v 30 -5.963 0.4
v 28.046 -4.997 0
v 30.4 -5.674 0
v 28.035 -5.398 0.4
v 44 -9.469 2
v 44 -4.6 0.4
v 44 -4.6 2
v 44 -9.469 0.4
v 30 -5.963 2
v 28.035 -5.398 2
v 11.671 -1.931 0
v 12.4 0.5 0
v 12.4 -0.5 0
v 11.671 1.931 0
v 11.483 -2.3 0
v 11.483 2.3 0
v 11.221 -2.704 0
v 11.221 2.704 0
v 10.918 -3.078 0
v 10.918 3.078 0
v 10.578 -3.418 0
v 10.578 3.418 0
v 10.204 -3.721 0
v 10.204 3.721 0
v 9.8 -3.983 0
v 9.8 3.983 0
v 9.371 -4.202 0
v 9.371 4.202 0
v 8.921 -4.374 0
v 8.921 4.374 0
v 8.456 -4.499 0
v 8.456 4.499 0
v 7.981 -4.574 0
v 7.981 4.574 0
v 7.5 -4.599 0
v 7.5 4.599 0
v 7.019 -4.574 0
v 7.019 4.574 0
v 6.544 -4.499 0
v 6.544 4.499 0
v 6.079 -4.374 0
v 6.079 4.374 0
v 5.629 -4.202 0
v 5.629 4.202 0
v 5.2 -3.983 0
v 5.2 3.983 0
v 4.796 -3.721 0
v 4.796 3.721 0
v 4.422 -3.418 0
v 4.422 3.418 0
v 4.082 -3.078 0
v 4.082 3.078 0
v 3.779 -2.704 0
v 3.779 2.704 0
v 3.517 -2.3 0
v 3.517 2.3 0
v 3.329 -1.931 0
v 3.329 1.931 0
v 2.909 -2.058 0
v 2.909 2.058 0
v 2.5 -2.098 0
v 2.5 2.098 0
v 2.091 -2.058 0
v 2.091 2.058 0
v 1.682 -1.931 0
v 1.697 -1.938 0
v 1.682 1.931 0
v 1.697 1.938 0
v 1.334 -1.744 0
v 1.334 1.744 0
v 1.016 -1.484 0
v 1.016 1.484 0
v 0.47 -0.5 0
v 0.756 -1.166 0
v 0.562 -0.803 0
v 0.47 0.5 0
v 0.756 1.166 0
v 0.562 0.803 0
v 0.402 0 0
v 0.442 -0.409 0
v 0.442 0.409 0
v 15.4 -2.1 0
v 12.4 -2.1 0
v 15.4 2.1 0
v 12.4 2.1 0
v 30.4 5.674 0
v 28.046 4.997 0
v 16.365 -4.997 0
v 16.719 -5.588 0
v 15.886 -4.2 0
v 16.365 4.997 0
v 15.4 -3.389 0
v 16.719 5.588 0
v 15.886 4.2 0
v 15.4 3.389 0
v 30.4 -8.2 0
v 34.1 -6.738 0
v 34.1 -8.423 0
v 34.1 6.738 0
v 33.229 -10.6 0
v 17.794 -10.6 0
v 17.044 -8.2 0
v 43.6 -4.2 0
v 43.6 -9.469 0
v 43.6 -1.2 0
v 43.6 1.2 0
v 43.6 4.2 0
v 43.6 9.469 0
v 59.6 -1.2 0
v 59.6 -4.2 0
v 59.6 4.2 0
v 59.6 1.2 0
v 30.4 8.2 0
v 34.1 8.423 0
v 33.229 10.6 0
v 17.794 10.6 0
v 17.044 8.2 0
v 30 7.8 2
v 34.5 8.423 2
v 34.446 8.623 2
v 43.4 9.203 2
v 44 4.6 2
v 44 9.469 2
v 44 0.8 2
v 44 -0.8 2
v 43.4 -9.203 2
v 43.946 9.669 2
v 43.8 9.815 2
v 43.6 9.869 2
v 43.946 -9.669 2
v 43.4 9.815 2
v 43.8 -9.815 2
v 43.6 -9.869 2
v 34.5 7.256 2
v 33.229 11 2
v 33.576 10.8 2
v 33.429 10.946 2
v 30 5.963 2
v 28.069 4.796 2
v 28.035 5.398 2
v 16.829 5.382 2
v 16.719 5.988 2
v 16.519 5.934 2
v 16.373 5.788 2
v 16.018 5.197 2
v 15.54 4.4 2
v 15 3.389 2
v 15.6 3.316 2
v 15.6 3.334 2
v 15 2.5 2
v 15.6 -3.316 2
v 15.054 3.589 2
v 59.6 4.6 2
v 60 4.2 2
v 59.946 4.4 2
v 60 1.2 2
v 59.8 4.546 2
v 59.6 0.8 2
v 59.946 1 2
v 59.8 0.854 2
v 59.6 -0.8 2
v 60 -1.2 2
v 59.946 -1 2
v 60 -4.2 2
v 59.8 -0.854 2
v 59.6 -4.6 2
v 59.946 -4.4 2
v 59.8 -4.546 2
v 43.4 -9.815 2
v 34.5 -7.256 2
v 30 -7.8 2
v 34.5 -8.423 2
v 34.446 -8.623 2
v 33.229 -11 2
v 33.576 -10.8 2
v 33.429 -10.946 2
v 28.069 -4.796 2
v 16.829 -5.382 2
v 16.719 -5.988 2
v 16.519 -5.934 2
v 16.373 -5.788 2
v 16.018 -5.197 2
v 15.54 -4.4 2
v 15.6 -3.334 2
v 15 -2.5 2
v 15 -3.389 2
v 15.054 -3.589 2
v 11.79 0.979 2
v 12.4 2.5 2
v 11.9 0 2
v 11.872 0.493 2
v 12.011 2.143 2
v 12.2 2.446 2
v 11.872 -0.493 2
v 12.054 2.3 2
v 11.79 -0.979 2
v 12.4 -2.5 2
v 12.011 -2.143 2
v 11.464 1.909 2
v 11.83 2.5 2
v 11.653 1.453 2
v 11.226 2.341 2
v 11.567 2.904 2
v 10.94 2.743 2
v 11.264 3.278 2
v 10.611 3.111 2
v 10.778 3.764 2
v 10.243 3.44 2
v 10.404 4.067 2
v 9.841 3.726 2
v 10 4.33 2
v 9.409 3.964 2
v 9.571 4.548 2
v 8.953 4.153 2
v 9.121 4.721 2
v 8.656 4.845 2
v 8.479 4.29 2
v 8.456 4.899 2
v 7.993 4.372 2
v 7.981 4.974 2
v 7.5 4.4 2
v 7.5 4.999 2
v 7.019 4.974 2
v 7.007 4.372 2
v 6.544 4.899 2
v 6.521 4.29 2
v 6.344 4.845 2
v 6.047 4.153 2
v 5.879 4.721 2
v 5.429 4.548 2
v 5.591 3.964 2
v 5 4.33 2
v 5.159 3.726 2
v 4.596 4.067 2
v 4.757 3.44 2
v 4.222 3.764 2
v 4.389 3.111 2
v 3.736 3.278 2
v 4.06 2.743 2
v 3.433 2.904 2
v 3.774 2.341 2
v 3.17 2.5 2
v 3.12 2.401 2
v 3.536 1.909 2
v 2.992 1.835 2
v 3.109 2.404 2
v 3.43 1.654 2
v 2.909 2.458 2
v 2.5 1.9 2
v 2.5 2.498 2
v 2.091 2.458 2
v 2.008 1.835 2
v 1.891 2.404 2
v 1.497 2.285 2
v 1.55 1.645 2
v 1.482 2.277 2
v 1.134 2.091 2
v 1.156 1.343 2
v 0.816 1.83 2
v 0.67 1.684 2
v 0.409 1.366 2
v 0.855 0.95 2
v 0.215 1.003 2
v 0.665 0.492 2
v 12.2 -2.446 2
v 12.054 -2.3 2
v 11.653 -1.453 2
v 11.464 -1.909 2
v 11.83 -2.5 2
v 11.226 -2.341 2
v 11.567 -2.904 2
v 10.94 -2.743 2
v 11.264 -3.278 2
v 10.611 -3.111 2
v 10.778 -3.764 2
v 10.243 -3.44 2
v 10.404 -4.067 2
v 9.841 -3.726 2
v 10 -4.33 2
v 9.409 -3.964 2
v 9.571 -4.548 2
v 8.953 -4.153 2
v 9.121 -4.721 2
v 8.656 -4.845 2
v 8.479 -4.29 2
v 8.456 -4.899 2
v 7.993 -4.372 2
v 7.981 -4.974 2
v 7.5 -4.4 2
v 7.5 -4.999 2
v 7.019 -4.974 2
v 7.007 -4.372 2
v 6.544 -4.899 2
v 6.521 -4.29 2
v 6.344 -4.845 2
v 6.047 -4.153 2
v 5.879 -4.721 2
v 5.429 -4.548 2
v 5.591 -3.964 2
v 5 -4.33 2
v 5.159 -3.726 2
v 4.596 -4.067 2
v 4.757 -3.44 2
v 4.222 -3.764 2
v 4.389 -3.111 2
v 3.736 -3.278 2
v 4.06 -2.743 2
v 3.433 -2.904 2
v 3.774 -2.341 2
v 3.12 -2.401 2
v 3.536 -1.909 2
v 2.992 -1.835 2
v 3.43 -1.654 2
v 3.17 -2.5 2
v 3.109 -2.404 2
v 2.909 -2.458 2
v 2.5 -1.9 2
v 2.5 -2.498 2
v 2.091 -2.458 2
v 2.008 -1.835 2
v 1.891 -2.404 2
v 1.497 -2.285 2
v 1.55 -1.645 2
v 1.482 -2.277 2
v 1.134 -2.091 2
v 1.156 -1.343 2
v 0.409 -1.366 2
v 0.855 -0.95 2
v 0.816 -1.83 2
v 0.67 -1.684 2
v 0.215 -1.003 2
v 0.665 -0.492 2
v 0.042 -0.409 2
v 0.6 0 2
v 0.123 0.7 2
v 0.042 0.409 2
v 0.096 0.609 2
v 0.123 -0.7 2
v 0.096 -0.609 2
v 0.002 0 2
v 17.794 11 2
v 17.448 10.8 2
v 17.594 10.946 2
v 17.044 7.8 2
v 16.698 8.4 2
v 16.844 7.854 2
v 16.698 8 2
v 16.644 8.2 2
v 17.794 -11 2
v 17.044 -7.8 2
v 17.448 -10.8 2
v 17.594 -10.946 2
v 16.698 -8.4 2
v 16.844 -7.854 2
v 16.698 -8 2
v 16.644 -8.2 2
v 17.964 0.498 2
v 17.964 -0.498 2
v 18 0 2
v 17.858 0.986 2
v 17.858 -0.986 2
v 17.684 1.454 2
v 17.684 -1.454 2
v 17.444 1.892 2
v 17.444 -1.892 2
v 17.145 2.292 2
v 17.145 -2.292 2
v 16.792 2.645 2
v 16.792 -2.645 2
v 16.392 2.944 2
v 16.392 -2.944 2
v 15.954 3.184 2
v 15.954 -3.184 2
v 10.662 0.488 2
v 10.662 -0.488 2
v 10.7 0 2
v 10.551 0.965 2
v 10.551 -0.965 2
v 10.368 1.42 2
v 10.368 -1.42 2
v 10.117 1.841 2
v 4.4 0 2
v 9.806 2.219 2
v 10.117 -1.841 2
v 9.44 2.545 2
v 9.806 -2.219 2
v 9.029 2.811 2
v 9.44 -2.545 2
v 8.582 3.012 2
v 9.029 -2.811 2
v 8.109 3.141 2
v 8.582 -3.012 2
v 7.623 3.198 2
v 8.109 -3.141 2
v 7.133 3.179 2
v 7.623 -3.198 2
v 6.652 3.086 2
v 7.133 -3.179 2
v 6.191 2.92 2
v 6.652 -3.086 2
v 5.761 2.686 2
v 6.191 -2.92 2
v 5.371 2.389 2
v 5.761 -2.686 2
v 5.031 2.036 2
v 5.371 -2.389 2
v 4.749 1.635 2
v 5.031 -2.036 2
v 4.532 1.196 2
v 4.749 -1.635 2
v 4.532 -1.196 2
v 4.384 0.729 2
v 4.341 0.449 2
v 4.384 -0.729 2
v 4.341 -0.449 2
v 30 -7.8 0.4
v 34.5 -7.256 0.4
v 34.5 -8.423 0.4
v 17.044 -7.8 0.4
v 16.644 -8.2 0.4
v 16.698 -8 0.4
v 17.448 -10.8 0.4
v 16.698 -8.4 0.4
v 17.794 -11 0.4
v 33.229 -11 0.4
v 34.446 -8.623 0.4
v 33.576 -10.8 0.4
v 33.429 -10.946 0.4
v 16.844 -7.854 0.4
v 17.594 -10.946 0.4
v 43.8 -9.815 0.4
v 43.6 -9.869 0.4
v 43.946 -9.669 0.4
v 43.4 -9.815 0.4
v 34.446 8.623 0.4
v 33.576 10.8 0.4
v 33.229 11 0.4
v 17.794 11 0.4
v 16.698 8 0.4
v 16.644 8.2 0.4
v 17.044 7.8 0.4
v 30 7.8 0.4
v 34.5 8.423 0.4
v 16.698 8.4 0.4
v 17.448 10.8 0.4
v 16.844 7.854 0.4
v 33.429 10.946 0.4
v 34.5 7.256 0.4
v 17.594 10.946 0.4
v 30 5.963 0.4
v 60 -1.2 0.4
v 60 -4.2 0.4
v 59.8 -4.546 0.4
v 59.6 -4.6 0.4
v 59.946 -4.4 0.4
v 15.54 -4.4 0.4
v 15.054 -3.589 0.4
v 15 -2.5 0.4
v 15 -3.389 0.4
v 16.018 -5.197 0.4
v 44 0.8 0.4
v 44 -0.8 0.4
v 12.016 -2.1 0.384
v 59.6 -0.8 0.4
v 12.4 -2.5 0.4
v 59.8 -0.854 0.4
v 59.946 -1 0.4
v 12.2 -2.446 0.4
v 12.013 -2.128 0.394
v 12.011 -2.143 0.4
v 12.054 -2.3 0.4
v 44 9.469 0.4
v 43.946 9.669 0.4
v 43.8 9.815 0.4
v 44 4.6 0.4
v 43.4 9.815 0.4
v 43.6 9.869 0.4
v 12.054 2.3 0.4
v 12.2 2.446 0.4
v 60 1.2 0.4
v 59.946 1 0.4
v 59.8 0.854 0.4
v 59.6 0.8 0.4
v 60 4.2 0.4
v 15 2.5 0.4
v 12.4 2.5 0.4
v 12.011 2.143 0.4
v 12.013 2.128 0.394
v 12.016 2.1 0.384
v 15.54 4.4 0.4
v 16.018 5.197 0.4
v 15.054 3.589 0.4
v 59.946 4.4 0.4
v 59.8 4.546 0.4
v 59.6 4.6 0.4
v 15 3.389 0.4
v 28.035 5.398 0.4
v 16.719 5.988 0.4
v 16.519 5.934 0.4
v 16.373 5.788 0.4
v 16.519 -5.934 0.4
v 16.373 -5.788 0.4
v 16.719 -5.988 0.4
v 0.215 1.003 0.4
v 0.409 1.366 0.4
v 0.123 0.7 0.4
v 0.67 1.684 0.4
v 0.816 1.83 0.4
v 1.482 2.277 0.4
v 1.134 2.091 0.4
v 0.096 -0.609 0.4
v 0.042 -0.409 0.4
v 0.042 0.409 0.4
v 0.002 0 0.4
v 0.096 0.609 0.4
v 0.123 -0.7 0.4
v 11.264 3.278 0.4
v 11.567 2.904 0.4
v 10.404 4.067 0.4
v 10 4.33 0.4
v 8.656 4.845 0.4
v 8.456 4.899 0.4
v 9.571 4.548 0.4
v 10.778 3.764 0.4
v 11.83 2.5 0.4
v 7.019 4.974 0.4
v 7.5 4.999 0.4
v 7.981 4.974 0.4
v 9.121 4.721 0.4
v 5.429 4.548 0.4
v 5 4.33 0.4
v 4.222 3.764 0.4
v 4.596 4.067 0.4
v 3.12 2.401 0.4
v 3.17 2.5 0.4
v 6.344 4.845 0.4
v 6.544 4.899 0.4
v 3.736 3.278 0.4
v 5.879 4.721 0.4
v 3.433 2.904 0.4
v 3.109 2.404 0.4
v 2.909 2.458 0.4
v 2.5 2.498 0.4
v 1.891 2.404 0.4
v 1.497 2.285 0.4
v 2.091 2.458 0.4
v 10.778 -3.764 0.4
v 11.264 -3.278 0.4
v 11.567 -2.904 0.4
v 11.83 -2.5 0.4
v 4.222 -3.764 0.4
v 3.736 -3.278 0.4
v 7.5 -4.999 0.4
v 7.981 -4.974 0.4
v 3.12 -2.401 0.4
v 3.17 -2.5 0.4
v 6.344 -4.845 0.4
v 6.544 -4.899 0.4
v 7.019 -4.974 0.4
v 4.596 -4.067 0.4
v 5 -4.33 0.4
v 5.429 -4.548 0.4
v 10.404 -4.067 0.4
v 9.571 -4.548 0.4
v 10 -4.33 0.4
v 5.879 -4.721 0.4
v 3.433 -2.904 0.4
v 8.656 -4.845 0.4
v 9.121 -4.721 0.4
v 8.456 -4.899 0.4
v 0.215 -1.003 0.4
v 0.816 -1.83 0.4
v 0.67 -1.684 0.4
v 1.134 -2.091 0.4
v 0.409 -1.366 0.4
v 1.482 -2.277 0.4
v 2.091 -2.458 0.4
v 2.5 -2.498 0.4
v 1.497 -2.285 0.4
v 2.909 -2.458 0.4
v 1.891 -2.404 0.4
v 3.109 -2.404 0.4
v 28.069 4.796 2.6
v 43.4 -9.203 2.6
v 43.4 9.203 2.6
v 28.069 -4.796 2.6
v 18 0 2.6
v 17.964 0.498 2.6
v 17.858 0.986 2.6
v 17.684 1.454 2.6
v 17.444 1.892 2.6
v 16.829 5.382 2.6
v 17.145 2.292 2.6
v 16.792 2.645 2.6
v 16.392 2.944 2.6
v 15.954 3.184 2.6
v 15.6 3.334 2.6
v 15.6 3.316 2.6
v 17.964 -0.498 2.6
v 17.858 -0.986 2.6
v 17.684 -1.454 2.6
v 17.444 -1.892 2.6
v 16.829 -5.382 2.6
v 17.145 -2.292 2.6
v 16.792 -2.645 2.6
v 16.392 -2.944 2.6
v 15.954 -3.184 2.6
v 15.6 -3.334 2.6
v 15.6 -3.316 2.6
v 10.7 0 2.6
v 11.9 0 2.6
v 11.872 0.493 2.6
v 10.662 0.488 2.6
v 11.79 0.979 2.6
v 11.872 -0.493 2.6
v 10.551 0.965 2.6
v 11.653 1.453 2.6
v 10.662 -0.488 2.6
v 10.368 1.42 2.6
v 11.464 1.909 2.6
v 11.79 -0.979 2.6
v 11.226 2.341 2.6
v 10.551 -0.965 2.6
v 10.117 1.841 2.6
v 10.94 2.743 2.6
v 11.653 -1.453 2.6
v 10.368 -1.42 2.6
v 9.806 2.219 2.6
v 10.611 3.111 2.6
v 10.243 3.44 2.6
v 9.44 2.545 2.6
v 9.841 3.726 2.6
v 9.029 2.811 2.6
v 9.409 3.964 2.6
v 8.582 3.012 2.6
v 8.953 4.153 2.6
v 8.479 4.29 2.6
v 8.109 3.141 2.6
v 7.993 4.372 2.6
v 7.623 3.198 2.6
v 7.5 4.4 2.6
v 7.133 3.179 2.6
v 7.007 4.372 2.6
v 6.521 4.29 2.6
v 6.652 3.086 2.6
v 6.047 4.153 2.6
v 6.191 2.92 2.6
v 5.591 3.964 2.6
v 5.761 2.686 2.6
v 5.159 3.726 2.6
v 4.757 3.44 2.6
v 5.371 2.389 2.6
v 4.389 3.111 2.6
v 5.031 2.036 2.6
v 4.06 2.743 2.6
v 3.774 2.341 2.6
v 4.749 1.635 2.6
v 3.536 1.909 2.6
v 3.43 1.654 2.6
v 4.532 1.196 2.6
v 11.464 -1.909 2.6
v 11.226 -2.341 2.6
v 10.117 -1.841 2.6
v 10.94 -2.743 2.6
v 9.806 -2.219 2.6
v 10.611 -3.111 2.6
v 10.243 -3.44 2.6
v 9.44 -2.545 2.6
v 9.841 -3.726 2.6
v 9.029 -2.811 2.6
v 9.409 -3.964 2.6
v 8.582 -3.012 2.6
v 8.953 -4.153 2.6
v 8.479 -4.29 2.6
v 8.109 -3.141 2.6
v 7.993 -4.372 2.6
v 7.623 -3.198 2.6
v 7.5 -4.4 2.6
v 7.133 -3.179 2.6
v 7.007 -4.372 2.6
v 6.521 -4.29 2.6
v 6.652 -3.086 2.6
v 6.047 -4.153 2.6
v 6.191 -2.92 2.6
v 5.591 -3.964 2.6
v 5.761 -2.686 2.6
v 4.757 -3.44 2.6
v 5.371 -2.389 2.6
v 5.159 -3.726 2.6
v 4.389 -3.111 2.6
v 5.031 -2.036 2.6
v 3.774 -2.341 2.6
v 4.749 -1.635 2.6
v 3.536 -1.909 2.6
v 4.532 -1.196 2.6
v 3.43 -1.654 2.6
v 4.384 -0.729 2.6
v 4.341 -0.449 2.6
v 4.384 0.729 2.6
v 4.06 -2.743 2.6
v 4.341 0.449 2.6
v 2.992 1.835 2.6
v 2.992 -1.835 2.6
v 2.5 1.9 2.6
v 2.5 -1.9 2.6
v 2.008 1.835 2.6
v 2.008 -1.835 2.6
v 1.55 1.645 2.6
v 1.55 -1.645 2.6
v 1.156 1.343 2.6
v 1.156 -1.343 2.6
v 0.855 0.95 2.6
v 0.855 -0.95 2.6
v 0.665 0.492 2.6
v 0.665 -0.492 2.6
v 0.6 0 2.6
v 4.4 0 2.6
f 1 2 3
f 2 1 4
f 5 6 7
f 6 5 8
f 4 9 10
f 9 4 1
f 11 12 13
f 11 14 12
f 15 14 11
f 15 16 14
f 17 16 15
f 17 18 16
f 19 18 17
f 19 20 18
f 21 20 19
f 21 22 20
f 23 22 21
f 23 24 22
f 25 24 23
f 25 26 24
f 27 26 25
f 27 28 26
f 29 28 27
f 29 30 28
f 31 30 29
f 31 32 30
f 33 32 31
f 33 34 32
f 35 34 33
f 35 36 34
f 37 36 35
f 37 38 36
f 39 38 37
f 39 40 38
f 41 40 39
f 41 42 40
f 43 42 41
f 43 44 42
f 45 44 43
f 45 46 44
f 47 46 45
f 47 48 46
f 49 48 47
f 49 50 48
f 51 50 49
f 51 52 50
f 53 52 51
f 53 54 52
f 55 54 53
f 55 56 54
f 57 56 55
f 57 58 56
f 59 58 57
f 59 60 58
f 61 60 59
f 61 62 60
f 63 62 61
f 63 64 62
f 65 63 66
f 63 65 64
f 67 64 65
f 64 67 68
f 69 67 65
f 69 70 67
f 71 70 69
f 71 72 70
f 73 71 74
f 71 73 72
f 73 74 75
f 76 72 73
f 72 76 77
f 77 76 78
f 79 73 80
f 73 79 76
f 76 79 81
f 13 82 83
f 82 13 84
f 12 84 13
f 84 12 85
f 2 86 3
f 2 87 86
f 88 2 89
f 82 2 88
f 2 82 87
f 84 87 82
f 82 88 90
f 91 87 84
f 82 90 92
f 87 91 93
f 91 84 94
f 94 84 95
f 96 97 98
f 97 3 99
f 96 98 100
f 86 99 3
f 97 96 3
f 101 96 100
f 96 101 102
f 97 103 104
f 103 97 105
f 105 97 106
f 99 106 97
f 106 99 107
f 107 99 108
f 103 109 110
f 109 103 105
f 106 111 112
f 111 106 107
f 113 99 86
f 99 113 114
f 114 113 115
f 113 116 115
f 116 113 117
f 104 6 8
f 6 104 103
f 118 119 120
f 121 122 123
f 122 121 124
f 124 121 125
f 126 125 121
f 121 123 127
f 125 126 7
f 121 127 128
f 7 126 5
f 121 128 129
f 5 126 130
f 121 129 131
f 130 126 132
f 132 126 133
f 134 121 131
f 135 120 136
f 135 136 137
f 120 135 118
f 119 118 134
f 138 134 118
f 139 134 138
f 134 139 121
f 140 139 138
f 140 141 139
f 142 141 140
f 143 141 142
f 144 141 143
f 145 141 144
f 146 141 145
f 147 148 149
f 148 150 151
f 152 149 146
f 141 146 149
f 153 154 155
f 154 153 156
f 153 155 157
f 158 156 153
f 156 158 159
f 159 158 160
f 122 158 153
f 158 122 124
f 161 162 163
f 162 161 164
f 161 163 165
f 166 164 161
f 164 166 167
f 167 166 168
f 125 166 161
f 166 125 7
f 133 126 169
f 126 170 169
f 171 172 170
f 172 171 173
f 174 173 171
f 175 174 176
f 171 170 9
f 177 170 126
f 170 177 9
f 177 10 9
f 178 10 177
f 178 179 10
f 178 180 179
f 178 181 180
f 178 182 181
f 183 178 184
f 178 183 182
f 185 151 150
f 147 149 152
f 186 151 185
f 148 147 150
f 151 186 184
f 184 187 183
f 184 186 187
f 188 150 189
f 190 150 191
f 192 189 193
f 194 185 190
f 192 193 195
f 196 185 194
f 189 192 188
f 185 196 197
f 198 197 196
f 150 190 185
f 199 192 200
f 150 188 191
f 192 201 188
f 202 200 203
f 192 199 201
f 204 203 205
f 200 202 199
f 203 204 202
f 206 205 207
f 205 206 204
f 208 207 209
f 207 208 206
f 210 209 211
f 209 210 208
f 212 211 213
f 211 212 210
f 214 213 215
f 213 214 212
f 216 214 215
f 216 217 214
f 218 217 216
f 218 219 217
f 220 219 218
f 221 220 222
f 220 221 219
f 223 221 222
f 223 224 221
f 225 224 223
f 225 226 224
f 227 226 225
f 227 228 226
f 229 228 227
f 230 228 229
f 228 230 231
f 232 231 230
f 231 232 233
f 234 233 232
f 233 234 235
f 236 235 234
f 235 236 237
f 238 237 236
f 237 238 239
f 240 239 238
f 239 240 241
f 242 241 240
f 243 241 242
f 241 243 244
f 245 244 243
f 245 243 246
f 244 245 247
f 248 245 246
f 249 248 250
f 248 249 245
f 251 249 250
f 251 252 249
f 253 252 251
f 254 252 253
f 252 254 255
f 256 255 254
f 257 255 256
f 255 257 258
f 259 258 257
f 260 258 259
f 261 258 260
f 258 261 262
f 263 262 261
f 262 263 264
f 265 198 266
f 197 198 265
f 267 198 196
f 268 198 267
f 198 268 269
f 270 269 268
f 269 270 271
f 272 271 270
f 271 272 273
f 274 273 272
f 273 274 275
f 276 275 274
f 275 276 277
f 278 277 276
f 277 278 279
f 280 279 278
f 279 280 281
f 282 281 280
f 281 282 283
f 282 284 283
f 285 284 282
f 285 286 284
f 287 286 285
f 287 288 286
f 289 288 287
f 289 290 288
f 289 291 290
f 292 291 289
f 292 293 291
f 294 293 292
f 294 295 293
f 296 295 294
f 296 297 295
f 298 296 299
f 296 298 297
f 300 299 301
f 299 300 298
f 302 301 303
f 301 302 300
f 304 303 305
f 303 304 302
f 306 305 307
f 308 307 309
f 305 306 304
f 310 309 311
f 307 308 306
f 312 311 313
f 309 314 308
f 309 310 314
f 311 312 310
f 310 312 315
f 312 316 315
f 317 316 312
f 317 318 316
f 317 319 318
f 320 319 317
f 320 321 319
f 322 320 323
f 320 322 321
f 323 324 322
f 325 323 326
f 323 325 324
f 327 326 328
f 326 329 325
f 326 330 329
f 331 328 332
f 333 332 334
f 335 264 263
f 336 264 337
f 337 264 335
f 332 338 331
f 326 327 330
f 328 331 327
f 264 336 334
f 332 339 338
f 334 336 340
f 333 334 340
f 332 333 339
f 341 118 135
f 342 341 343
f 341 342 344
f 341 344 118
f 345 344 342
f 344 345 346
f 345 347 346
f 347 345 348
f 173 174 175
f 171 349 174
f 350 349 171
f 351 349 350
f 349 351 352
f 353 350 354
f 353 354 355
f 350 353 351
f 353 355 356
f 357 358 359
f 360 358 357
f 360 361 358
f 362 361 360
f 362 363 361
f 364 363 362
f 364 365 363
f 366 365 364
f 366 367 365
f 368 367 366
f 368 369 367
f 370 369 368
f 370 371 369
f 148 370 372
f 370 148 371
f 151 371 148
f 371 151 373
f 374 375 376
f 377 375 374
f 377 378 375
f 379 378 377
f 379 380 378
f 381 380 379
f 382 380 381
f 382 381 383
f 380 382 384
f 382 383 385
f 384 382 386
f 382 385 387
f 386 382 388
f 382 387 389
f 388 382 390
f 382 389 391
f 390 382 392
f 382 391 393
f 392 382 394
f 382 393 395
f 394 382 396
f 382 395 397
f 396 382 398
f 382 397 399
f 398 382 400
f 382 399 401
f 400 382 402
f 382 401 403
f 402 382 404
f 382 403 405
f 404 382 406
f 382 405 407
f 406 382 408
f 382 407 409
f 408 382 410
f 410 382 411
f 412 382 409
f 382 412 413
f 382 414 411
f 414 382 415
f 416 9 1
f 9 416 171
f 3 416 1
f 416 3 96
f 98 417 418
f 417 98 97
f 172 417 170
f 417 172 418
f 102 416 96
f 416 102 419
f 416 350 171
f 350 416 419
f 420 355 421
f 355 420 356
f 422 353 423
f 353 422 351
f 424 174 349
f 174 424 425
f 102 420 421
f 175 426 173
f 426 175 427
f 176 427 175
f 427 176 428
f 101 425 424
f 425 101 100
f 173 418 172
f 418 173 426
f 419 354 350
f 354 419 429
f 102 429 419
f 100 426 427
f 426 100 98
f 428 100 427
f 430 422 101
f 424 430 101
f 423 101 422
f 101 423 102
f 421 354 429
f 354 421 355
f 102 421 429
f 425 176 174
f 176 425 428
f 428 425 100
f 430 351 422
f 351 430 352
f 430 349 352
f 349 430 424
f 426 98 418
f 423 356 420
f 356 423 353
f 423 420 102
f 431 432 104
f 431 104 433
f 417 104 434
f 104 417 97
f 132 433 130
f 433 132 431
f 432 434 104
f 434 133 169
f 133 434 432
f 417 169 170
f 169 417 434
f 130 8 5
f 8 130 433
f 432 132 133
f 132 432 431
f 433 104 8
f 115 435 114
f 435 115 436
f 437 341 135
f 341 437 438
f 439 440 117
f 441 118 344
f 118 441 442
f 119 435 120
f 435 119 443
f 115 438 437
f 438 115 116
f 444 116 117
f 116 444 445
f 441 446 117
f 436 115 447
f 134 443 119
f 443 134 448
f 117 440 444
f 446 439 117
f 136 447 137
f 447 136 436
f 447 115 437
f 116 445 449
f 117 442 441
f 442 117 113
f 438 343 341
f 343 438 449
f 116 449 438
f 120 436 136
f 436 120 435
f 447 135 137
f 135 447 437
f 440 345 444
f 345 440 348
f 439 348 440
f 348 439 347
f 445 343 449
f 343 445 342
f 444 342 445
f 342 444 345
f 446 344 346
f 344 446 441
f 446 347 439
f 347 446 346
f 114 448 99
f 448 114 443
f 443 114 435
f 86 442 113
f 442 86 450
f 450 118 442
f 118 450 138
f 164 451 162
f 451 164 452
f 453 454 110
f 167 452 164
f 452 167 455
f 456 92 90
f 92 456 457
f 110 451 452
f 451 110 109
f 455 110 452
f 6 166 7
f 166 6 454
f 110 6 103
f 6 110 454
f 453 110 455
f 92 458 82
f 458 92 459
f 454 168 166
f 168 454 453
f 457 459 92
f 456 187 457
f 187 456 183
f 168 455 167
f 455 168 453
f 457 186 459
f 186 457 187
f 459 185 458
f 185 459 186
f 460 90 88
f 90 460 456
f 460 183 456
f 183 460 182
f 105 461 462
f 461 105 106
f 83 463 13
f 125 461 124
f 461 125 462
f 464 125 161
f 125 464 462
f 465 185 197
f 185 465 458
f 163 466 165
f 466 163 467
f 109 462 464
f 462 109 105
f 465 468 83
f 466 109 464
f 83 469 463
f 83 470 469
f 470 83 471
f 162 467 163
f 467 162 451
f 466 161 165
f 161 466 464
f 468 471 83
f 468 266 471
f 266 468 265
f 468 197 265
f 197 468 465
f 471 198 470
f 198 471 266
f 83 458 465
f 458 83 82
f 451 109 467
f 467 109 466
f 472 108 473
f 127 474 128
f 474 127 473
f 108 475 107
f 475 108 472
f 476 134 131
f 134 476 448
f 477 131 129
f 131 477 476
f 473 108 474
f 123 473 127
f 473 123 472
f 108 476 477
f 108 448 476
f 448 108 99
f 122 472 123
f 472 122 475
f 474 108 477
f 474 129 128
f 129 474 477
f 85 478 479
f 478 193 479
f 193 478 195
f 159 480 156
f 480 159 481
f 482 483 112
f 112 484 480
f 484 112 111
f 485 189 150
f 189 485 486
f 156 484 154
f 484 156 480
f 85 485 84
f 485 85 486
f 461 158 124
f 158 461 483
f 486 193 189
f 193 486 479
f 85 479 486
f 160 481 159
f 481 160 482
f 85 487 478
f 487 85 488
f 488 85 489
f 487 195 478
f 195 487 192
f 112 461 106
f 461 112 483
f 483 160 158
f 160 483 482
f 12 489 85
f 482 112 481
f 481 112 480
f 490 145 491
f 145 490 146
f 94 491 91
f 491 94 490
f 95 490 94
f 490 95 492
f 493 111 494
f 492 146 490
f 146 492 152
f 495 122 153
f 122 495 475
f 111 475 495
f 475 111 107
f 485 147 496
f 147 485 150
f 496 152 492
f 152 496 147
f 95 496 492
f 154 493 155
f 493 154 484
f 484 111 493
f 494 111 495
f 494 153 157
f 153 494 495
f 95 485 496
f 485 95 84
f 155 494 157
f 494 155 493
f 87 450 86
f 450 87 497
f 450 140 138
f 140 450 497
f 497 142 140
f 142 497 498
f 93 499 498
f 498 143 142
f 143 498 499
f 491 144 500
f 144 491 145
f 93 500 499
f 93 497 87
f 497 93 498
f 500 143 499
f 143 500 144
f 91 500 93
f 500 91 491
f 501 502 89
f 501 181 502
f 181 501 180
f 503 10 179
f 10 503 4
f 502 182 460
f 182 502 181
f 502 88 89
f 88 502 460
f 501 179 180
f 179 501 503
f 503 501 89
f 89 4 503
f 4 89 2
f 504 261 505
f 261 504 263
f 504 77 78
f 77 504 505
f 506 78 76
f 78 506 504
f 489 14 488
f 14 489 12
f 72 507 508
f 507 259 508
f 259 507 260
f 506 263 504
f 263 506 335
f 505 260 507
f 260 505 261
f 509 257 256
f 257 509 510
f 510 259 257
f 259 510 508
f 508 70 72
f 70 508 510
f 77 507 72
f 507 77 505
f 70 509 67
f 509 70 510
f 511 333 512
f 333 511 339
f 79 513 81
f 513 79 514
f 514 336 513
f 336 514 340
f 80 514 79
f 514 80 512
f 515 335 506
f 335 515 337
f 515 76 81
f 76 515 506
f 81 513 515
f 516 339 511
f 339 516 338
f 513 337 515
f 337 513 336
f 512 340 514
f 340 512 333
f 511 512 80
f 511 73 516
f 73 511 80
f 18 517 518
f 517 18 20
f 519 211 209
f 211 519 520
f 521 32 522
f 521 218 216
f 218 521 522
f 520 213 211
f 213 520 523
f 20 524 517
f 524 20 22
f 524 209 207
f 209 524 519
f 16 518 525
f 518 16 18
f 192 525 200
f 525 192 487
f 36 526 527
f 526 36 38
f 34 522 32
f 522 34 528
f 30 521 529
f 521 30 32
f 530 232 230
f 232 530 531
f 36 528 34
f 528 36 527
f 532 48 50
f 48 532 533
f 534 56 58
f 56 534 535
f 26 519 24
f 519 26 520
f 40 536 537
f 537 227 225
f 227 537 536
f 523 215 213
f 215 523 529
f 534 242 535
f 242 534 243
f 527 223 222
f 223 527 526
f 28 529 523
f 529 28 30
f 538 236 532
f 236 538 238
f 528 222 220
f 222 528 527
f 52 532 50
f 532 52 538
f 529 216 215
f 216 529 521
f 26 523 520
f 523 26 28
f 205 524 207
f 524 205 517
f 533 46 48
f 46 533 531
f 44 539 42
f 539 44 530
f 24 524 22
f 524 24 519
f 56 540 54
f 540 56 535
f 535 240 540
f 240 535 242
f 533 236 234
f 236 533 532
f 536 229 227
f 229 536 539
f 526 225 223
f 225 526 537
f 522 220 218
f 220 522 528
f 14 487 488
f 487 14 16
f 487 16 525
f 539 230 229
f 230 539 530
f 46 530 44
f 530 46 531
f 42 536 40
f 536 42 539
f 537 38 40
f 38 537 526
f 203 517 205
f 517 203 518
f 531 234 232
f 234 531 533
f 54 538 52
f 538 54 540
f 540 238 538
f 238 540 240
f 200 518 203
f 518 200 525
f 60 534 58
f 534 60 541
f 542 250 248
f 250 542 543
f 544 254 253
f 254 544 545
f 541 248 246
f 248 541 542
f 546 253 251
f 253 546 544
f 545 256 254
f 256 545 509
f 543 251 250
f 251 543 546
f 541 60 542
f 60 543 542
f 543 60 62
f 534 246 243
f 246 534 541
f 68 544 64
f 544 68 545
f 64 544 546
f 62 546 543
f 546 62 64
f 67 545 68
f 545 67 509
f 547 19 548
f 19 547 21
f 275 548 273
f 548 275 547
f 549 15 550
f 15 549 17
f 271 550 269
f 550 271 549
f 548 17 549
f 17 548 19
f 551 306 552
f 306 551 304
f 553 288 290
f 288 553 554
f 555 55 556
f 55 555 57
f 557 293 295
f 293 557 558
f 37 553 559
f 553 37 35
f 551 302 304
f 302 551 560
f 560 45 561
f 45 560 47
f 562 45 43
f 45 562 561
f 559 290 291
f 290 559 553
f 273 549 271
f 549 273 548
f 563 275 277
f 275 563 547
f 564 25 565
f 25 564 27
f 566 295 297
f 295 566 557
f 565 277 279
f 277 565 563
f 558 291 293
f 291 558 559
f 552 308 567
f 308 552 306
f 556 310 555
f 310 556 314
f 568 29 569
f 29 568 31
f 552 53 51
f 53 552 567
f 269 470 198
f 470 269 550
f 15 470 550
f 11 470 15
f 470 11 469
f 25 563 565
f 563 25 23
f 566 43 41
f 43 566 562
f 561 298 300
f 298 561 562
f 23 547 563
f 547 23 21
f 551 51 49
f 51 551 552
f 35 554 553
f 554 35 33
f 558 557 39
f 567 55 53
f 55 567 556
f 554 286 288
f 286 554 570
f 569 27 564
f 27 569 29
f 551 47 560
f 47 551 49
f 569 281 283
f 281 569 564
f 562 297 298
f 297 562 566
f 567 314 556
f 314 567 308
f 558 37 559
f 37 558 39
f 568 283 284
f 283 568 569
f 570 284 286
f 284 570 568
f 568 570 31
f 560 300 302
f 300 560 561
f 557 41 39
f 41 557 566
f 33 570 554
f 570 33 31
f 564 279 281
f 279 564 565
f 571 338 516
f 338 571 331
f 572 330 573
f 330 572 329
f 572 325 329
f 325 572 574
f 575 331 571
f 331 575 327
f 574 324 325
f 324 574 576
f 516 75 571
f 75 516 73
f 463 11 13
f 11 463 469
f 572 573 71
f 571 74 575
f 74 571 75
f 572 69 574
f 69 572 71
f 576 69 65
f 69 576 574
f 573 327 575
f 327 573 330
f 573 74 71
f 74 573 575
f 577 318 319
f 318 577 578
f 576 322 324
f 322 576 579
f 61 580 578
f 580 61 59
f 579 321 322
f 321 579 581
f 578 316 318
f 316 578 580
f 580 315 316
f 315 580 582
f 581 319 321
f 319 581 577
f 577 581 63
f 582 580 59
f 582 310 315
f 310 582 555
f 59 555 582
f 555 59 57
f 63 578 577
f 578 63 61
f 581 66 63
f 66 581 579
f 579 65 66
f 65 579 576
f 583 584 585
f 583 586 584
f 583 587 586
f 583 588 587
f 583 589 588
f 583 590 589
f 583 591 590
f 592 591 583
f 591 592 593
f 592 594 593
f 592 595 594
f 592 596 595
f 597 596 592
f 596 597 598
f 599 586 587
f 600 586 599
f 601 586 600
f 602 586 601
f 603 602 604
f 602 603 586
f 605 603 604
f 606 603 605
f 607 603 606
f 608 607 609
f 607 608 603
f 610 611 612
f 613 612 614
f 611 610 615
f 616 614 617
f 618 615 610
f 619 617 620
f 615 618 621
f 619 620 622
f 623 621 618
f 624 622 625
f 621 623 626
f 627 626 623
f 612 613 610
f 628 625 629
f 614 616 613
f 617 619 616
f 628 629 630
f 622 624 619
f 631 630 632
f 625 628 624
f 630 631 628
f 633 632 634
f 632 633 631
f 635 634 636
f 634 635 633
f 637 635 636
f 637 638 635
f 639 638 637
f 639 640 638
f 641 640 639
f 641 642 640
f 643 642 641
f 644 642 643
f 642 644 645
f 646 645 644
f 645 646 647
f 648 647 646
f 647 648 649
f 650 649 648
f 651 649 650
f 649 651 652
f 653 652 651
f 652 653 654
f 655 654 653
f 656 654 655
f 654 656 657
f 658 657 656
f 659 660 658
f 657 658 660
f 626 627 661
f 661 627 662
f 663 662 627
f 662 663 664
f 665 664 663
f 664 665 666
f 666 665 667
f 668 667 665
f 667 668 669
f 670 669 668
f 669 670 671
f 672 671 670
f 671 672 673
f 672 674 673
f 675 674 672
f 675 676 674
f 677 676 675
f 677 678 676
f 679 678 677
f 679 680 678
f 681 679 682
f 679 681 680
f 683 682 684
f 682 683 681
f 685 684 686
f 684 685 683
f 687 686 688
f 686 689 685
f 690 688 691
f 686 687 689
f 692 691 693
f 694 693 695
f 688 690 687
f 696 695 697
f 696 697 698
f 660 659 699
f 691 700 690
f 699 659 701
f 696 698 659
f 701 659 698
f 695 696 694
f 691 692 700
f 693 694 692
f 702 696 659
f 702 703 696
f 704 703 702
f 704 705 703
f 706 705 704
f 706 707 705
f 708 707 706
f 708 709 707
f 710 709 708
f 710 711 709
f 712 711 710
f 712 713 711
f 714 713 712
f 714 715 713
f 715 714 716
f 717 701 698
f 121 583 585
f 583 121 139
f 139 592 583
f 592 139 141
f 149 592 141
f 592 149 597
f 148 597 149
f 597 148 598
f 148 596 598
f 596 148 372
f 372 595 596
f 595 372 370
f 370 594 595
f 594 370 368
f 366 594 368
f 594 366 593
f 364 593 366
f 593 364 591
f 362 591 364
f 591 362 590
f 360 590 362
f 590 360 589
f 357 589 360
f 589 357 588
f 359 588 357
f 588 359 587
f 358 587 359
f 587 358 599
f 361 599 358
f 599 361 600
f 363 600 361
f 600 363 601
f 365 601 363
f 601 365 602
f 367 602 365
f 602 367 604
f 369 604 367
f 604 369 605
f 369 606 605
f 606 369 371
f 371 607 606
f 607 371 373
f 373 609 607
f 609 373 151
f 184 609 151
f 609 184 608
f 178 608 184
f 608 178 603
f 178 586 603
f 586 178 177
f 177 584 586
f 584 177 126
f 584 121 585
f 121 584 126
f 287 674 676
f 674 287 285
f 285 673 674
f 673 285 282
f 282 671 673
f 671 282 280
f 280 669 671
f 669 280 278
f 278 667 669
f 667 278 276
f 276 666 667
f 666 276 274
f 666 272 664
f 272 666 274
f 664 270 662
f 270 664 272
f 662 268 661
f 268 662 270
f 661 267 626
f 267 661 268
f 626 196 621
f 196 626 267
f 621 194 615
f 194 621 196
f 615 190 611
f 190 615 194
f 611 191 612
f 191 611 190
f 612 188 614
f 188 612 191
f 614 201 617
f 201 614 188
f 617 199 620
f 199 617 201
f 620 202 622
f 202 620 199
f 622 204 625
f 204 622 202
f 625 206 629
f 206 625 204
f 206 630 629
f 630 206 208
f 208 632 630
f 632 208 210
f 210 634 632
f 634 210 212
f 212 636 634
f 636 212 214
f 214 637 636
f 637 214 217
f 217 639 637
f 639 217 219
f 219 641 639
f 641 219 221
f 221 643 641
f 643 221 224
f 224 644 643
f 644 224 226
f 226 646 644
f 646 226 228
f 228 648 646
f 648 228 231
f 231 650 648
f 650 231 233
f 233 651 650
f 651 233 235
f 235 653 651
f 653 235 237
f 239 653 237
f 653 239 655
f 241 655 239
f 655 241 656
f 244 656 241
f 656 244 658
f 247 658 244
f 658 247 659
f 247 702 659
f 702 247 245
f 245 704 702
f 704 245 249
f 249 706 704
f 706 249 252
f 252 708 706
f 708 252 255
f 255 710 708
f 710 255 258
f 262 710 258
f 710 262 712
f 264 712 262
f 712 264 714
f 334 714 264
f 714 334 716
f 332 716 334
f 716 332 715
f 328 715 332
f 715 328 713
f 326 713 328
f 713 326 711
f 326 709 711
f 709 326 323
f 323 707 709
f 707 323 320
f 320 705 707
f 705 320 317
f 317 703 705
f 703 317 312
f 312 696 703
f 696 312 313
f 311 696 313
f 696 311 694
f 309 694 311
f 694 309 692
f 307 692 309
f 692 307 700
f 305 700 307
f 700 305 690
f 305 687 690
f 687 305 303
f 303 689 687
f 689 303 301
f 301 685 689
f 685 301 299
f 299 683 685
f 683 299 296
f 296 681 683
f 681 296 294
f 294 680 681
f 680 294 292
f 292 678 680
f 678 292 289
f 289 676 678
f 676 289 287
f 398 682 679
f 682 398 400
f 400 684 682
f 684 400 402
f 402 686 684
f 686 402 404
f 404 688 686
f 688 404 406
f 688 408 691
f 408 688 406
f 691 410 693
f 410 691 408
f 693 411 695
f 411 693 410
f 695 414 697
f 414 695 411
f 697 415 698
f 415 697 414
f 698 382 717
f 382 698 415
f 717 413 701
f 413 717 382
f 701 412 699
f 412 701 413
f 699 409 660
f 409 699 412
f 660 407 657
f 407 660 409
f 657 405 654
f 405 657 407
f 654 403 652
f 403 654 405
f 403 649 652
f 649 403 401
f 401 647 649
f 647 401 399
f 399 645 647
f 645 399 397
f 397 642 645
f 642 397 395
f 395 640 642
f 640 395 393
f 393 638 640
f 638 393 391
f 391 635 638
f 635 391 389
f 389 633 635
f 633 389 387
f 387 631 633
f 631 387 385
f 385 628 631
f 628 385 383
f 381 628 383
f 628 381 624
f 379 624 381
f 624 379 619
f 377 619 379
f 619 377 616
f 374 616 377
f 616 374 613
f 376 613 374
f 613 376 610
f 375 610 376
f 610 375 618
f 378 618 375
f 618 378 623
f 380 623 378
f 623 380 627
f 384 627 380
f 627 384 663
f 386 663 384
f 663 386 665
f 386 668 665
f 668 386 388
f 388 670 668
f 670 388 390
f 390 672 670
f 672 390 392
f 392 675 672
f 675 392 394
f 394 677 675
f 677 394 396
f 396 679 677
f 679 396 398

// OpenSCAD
// adult_patient.scad - adult woman lying in bed, seen from above (design_brief.md 4.3).
// Female pictogram 60 x 22 x 2.6: head dia 10 with a bun, neck 5 wide, dress, arms 3.2 wide
// along the body joining it at the hands, legs 3.8 wide with a 1.6 gap. Base 2.0 with the
// dress, a hair ring around the face and the bun raised 0.6 in the same colour, inset 0.6
// from the outline; the face stays at base level.
// Single colour, prints flat, head at x = 0, feet at x = 60.
// Export: openscad -o adult_patient.stl adult_patient.scad
include <common.scad>

length  = 60;
width   = 22;
relief  = true;
inset   = 0.6;                  // relief edge inside the outline
head_d  = 10;
bun_d   = 5;
neck_w  = min_neck;             // 5
relief_colour = "#8c8c8c";      // preview only: same filament, raised

// half outlines (y >= 0), mirrored; 0.1 mm precision
dress = [[15, 3.5], [16.5, 6], [28, 5.4], [44, 10], [44, 0]];
arm   = [[16.5, 7.8], [17.5, 11], [33.5, 11], [34.5, 8.5], [34.5, 5], [30, 5], [30, 7.8]];
leg   = [[43, 0.8], [60, 0.8], [60, 4.6], [43, 4.6]];

function mirrored(half) = concat(half, [for (i = [len(half) - 1 : -1 : 0]) [half[i][0], -half[i][1]]]);

module dress_2d() polygon(mirrored(dress));

module adult_2d() {
    translate([bun_d / 2, 0]) circle(d = bun_d);                    // bun at the crown
    translate([bun_d / 2 + head_d / 2, 0]) circle(d = head_d);      // head, x 2.5-12.5
    translate([12, -neck_w / 2]) square([3.5, neck_w]);             // neck
    dress_2d();
    for (s = [-1, 1]) scale([1, s]) { polygon(arm); polygon(leg); }
}

module relief_2d() {
    difference() {                                                   // dress with a round neckline
        offset(delta = -inset) dress_2d();
        translate([14.5, 0]) circle(r = 3.5);
    }
    difference() {                                                   // hair: ring 1.2 wide around the face
        translate([bun_d / 2 + head_d / 2, 0]) circle(d = head_d - 2 * inset);
        translate([bun_d / 2 + head_d / 2, 0]) circle(d = head_d - 2 * inset - 2 * picto_min);
    }
    translate([bun_d / 2, 0]) circle(d = bun_d - 2 * inset);         // bun
}

module adult_patient() {
    band1() adult_2d();
    if (relief) color(relief_colour) band_at(1, band2_z, band2_h) relief_2d();
}

adult_patient();
